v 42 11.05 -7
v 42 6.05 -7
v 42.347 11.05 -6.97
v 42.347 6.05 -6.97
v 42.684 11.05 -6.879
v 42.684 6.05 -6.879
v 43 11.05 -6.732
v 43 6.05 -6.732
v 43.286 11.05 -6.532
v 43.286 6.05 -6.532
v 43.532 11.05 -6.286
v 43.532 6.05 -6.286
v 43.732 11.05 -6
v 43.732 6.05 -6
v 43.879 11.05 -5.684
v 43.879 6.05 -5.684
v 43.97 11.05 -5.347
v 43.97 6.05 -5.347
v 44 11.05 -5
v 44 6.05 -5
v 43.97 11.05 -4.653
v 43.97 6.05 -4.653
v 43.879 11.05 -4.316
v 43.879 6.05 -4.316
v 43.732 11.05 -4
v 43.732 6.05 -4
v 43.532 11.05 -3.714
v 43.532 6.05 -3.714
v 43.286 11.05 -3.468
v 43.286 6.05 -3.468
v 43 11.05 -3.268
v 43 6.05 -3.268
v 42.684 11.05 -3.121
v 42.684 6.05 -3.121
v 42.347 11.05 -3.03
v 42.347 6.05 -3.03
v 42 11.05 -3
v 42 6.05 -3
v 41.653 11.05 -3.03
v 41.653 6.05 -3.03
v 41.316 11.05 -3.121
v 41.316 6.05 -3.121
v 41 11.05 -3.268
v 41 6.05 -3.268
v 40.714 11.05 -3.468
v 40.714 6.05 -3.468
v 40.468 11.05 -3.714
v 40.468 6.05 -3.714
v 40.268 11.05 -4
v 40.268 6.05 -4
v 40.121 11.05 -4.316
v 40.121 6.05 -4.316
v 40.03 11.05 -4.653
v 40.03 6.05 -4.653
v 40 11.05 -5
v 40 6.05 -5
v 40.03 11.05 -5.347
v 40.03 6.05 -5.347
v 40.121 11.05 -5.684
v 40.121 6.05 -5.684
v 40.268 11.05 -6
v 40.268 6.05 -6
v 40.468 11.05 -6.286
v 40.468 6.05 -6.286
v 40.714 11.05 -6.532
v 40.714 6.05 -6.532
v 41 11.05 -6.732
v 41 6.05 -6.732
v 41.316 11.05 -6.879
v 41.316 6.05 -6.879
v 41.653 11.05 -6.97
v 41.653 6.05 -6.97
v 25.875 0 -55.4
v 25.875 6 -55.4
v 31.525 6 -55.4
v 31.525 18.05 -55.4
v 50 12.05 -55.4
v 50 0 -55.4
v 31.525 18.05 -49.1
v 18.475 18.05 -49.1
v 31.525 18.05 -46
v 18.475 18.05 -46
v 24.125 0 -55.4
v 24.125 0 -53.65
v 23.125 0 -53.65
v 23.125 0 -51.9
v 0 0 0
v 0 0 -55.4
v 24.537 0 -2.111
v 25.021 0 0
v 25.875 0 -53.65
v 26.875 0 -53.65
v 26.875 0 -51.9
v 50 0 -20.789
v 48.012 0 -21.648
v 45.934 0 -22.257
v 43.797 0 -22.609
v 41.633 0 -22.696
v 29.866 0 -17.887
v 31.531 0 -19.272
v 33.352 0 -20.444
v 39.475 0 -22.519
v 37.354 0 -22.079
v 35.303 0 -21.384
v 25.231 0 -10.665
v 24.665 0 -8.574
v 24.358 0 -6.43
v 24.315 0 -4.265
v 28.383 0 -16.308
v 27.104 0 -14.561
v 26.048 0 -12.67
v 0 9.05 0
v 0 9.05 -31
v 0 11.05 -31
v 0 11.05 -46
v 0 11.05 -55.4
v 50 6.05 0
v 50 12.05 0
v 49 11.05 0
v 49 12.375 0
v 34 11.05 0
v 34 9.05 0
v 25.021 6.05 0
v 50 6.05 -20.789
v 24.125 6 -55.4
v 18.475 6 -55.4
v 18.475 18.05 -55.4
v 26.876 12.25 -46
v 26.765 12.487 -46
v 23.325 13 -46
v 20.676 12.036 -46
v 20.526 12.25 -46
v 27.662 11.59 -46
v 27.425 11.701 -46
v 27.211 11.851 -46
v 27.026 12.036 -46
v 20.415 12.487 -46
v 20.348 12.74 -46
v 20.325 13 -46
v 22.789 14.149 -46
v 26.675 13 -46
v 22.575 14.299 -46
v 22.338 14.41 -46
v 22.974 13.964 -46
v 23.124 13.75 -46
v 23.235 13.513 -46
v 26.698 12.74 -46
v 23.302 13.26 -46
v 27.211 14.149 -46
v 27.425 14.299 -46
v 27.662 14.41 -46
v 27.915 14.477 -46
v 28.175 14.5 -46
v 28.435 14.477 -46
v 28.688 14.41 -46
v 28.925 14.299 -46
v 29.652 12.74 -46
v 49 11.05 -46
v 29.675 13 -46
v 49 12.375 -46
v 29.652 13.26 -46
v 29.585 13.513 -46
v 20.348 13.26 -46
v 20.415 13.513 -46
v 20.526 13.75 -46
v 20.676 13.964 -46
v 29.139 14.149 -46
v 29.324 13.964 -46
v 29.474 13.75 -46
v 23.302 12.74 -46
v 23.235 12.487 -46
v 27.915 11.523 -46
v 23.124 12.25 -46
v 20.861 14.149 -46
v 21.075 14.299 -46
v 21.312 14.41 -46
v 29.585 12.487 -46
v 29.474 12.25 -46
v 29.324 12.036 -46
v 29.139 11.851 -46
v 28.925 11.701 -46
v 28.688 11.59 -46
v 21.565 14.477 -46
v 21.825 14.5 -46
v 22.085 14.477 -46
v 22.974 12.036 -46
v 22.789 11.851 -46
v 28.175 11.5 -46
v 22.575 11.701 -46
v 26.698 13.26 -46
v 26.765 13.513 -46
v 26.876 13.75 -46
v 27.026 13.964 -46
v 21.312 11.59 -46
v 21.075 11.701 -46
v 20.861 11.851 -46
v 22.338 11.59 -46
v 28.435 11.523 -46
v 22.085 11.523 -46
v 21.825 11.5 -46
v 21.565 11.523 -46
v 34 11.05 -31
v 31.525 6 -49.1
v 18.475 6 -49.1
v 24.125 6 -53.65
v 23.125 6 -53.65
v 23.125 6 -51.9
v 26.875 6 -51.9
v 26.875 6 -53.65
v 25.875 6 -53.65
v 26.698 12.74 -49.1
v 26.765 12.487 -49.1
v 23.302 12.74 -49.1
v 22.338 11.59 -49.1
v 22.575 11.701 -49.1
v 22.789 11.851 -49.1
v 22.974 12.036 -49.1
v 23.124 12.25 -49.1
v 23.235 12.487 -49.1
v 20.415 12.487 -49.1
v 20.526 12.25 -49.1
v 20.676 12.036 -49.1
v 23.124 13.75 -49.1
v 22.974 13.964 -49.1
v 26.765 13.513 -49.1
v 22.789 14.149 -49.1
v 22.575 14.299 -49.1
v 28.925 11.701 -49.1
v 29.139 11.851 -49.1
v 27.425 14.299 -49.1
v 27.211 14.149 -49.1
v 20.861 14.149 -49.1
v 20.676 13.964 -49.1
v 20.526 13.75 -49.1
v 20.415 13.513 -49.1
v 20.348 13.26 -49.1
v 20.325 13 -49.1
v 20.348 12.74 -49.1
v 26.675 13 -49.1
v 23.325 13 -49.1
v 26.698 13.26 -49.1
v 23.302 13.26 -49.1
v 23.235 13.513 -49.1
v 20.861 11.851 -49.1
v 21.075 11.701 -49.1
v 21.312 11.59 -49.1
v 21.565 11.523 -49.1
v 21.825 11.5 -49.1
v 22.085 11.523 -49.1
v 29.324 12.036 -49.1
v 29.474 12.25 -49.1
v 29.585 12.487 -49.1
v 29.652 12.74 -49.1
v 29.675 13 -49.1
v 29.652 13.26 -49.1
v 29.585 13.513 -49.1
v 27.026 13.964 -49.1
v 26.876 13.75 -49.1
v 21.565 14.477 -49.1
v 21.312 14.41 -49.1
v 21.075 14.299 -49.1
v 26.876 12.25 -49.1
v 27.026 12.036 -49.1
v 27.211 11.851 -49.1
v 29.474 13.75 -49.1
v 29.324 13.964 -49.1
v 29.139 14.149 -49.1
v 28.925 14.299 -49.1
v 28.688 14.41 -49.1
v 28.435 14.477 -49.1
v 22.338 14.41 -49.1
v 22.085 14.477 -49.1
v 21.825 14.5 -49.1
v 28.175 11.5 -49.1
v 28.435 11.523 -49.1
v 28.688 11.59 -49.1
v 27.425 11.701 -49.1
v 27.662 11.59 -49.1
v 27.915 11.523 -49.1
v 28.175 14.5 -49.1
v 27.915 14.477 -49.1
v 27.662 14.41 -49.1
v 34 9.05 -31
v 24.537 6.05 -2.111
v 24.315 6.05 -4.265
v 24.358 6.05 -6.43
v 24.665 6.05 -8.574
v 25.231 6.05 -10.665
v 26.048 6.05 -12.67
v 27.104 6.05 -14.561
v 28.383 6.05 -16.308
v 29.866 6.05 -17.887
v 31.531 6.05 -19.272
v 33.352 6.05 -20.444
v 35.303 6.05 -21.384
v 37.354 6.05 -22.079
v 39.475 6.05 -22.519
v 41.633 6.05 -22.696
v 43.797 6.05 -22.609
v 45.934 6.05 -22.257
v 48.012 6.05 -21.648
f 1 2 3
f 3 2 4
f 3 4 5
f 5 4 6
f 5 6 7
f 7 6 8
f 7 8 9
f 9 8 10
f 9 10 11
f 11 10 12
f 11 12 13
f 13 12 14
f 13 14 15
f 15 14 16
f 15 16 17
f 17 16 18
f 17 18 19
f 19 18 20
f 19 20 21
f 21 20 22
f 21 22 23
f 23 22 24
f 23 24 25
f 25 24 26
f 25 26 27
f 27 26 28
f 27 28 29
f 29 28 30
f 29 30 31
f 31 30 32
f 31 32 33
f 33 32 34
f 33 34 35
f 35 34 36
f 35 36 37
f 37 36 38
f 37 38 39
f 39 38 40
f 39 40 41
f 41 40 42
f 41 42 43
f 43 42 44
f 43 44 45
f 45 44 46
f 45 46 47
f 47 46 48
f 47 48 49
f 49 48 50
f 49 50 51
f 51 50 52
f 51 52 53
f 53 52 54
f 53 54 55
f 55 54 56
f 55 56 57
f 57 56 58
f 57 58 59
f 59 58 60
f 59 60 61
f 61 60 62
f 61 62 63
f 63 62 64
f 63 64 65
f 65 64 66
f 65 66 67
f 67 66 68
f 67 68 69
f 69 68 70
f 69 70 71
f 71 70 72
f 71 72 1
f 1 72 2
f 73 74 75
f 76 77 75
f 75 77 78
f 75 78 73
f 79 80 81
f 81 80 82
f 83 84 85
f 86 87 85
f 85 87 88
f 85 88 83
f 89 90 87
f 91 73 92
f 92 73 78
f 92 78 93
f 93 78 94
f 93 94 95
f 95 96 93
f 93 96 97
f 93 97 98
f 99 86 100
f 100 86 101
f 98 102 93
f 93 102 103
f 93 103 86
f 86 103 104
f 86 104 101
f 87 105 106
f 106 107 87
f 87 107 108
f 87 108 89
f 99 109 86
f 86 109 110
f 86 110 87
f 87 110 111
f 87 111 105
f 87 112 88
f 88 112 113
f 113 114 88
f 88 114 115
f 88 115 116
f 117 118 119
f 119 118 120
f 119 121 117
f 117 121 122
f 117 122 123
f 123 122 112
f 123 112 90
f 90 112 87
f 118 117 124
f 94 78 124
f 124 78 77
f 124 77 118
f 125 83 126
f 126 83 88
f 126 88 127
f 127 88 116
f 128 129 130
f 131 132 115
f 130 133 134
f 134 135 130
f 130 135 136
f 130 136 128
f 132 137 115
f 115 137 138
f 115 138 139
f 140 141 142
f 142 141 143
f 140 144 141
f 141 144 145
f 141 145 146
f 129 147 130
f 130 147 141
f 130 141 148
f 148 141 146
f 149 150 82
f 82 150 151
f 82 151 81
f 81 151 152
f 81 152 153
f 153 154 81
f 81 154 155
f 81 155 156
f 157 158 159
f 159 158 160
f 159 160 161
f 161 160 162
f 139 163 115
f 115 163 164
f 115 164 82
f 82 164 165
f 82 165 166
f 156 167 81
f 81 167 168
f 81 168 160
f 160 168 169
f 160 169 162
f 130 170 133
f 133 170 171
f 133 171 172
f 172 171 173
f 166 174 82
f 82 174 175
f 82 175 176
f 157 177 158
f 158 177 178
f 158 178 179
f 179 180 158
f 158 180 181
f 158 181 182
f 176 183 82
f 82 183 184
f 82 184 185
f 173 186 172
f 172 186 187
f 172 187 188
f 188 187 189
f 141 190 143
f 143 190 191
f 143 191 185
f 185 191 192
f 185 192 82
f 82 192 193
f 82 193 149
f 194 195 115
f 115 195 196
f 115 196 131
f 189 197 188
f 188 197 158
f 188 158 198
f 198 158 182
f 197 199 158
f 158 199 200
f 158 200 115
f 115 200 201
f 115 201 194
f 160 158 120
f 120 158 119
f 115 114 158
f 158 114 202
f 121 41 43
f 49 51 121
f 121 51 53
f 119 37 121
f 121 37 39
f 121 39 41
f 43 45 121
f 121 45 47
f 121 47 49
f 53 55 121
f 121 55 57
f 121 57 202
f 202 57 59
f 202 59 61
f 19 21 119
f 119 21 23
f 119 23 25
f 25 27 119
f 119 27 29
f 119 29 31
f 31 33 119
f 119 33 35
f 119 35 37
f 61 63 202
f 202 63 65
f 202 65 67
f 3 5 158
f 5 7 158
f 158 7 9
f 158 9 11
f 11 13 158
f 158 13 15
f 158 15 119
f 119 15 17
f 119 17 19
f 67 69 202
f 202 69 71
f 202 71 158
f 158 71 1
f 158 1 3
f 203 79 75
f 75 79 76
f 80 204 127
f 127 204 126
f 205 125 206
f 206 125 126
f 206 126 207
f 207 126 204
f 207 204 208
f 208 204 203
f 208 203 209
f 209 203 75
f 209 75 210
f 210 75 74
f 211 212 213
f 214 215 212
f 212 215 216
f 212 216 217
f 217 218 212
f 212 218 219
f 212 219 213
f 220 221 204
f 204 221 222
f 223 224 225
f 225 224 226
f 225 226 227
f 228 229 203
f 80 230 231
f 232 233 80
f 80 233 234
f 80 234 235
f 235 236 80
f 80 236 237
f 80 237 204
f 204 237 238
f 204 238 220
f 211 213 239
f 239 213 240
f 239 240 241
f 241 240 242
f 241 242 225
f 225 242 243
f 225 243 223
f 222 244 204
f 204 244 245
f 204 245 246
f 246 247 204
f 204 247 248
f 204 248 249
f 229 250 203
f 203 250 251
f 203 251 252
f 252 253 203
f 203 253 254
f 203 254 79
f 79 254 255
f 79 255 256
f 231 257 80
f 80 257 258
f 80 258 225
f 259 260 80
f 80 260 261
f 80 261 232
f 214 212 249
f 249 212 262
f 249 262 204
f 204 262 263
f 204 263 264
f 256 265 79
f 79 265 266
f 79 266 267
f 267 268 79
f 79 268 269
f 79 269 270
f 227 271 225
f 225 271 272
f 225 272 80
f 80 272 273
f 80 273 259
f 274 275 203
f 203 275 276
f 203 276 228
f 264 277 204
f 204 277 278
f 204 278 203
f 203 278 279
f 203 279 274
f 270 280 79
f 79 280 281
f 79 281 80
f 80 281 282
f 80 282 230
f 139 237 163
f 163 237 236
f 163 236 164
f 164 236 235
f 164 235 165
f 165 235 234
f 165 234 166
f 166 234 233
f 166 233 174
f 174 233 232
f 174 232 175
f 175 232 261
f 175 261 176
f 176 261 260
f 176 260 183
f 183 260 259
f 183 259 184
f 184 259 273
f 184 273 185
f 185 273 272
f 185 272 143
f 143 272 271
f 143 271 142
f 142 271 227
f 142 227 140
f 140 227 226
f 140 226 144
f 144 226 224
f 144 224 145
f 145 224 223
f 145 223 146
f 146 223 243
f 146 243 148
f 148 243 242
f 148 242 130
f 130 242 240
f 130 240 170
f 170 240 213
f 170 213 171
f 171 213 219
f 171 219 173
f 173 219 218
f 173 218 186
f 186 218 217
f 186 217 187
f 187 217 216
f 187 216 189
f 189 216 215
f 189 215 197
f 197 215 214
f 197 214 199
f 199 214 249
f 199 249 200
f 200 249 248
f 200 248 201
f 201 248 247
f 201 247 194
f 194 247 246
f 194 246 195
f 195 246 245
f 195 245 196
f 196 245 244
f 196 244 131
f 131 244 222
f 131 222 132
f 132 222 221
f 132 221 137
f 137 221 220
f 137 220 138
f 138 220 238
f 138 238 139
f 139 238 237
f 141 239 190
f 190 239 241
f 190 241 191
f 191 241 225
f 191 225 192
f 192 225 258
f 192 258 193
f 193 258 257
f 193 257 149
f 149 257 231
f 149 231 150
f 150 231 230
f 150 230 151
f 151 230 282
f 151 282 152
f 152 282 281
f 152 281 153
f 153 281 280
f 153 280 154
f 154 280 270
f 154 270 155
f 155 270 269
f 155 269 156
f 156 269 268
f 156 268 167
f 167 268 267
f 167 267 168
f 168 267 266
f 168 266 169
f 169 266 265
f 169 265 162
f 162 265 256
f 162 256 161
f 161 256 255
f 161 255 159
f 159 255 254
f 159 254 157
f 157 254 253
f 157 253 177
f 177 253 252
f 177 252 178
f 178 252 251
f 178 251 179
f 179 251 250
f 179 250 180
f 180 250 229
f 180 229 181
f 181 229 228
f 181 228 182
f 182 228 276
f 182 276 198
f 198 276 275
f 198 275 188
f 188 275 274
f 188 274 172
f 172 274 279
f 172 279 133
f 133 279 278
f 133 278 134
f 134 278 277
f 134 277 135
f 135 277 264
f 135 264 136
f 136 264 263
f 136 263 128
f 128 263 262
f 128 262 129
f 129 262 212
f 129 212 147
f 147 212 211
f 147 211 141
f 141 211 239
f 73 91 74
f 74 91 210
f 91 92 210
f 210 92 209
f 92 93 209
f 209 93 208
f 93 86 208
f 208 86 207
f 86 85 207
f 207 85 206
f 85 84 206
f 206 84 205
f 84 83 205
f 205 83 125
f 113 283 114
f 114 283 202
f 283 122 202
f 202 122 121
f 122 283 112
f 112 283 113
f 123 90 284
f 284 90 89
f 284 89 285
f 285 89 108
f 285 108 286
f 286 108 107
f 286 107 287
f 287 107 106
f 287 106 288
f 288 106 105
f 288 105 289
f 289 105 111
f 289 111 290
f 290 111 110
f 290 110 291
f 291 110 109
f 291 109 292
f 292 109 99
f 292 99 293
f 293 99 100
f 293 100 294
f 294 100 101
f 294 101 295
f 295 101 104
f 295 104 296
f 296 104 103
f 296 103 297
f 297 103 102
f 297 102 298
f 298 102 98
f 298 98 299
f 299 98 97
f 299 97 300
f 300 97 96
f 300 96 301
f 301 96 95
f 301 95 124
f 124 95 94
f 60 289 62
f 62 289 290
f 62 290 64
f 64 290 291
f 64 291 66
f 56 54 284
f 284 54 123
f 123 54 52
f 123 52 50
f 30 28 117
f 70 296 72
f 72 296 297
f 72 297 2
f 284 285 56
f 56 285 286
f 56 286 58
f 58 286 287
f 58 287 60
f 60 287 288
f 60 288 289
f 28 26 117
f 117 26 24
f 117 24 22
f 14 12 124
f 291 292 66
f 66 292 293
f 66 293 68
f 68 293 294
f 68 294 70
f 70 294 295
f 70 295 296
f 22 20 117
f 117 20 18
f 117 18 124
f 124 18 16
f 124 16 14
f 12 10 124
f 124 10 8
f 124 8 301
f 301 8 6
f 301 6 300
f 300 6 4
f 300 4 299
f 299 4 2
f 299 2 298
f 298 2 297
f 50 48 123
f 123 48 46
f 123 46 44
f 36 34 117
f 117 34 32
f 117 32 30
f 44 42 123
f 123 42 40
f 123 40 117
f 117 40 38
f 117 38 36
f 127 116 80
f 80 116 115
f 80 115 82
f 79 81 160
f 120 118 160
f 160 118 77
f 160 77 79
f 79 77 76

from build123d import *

# Parameters (mm, degrees)
OUTLINESKETCH2_W                           = 50
OUTLINESKETCH2_H                           = 55.4
OUTLINESKETCH2_R                           = 2
OUTLINEBOSS_EXTRUDE1_DEPTH                 = 18.05
BUILDPLATECUTOUTSKETCH1_W                  = 49
BUILDPLATECUTOUTSKETCH1_H                  = 46
BUILDPLATECUTOUTCUT_EXTRUDE7_DEPTH         = 7
MICROSWITCHSKETCH9_W                       = 13.05
MICROSWITCHSKETCH9_H                       = 12.05
MICROSWITCHCUT_EXTRUDE6_DEPTH              = 6.3
MICROSWITCHMOUNTINGHOLESSKETCH10_R         = 1.5
MICROSWITCHMOUNTINGHOLESCUT_EXTRUDE4_DEPTH = 3.1
CABLECUTCUT_EXTRUDE5_DEPTH                 = 76.59340249
HEATMATCUTSKETCH3_W                        = 34
HEATMATCUTSKETCH3_H                        = 31
HEATMATCUT_EXTRUDE8_DEPTH                  = 2
BALLJOINTCUT_EXTRUDE9_DEPTH                = 6.05
CHAMFER1_SIZE                              = 7
CHAMFER1_SIZE2                             = 18.475
CHAMFER2_SIZE                              = 6
CHAMFER2_SIZE2                             = 18.475


with BuildPart() as part:
    # OutlineSketch2 → OutlineBoss-Extrude1 (new body)
    with BuildSketch(Plane(origin=(0, 0, 0), x_dir=(1, 0, 0), z_dir=(0, 1, 0))):
        with Locations((25, 27.7)):
            Rectangle(OUTLINESKETCH2_W, OUTLINESKETCH2_H)
        with Locations(Location((42, 5, 0), (0, 0, 270))):
            Circle(OUTLINESKETCH2_R, mode=Mode.SUBTRACT)
    extrude(amount=OUTLINEBOSS_EXTRUDE1_DEPTH)

    # BuildPlateCutoutSketch1 → BuildPlateCutoutCut-Extrude7 (cut)
    with BuildSketch(Plane(origin=(0, 18.05, 0), x_dir=(1, 0, 0), z_dir=(0, 1, 0))):
        with Locations((24.5, 23)):
            Rectangle(BUILDPLATECUTOUTSKETCH1_W, BUILDPLATECUTOUTSKETCH1_H)
    extrude(amount=-BUILDPLATECUTOUTCUT_EXTRUDE7_DEPTH, mode=Mode.SUBTRACT)

    # MicroSwitchSketch9 → MicroSwitchCut-Extrude6 (cut)
    with BuildSketch(Plane(origin=(0, 0, -55.4), x_dir=(-1, 0, 0), z_dir=(0, 0, -1))):
        with Locations((-25, 12.025)):
            Rectangle(MICROSWITCHSKETCH9_W, MICROSWITCHSKETCH9_H)
    extrude(amount=-MICROSWITCHCUT_EXTRUDE6_DEPTH, mode=Mode.SUBTRACT)

    # MicroSwitchMountingHolesSketch10 → MicroSwitchMountingHolesCut-Extrude4 (cut)
    with BuildSketch(Plane(origin=(0, 0, -49.1), x_dir=(-1, 0, 0), z_dir=(0, 0, -1))):
        with Locations((-28.175, 13)):
            Circle(MICROSWITCHMOUNTINGHOLESSKETCH10_R)
        with Locations((-21.825, 13)):
            Circle(MICROSWITCHMOUNTINGHOLESSKETCH10_R)
    extrude(amount=-MICROSWITCHMOUNTINGHOLESCUT_EXTRUDE4_DEPTH, mode=Mode.SUBTRACT)

    # CableCutSketch11 → CableCutCut-Extrude5 (cut, through all)
    with BuildSketch(Plane(origin=(0, 6, 0), x_dir=(1, 0, 0), z_dir=(0, 1, 0))):
        Polygon((24.125, 55.4), (24.125, 53.65), (23.125, 53.65), (23.125, 51.9), (26.875, 51.9), (26.875, 53.65), (25.875, 53.65), (25.875, 55.4), align=None)
    extrude(amount=-CABLECUTCUT_EXTRUDE5_DEPTH, mode=Mode.SUBTRACT)

    # HeatMatCutSketch3 → HeatMatCut-Extrude8 (cut)
    with BuildSketch(Plane(origin=(0, 11.05, 0), x_dir=(1, 0, 0), z_dir=(0, 1, 0))):
        with Locations((17, 15.5)):
            Rectangle(HEATMATCUTSKETCH3_W, HEATMATCUTSKETCH3_H)
    extrude(amount=-HEATMATCUT_EXTRUDE8_DEPTH, mode=Mode.SUBTRACT)

    # BallJointCutoutSketch4 → BallJointCut-Extrude9 (cut)
    with BuildSketch(Plane.XZ):
        with BuildLine():
            Line((25.020895194, 0), (50, 0))
            Line((50, 0), (50, -20.788920166))
            ThreePointArc((50, -20.788920166), (30.677417203, -18.604746187), (25.020895194, 0))
        make_face()
    extrude(amount=-BALLJOINTCUT_EXTRUDE9_DEPTH, mode=Mode.SUBTRACT)

    # Chamfer1
    chamfer1_edges = [part.edges().sort_by_distance(p)[0] for p in [
        (0, 18.05, -50.7),
    ]]
    chamfer1_side = [part.faces().sort_by_distance(p)[0] for p in [
        (0, 6.03362055, -31.38491972),
    ]]
    chamfer(chamfer1_edges, length=CHAMFER1_SIZE, length2=CHAMFER1_SIZE2, reference=chamfer1_side[0])

    # Chamfer2
    chamfer2_edges = [part.edges().sort_by_distance(p)[0] for p in [
        (50, 18.05, -27.7),
    ]]
    chamfer2_side = [part.faces().sort_by_distance(p)[0] for p in [
        (50, 9.888235373, -30.189792368),
    ]]
    chamfer(chamfer2_edges, length=CHAMFER2_SIZE, length2=CHAMFER2_SIZE2, reference=chamfer2_side[0])


solid = part.part
